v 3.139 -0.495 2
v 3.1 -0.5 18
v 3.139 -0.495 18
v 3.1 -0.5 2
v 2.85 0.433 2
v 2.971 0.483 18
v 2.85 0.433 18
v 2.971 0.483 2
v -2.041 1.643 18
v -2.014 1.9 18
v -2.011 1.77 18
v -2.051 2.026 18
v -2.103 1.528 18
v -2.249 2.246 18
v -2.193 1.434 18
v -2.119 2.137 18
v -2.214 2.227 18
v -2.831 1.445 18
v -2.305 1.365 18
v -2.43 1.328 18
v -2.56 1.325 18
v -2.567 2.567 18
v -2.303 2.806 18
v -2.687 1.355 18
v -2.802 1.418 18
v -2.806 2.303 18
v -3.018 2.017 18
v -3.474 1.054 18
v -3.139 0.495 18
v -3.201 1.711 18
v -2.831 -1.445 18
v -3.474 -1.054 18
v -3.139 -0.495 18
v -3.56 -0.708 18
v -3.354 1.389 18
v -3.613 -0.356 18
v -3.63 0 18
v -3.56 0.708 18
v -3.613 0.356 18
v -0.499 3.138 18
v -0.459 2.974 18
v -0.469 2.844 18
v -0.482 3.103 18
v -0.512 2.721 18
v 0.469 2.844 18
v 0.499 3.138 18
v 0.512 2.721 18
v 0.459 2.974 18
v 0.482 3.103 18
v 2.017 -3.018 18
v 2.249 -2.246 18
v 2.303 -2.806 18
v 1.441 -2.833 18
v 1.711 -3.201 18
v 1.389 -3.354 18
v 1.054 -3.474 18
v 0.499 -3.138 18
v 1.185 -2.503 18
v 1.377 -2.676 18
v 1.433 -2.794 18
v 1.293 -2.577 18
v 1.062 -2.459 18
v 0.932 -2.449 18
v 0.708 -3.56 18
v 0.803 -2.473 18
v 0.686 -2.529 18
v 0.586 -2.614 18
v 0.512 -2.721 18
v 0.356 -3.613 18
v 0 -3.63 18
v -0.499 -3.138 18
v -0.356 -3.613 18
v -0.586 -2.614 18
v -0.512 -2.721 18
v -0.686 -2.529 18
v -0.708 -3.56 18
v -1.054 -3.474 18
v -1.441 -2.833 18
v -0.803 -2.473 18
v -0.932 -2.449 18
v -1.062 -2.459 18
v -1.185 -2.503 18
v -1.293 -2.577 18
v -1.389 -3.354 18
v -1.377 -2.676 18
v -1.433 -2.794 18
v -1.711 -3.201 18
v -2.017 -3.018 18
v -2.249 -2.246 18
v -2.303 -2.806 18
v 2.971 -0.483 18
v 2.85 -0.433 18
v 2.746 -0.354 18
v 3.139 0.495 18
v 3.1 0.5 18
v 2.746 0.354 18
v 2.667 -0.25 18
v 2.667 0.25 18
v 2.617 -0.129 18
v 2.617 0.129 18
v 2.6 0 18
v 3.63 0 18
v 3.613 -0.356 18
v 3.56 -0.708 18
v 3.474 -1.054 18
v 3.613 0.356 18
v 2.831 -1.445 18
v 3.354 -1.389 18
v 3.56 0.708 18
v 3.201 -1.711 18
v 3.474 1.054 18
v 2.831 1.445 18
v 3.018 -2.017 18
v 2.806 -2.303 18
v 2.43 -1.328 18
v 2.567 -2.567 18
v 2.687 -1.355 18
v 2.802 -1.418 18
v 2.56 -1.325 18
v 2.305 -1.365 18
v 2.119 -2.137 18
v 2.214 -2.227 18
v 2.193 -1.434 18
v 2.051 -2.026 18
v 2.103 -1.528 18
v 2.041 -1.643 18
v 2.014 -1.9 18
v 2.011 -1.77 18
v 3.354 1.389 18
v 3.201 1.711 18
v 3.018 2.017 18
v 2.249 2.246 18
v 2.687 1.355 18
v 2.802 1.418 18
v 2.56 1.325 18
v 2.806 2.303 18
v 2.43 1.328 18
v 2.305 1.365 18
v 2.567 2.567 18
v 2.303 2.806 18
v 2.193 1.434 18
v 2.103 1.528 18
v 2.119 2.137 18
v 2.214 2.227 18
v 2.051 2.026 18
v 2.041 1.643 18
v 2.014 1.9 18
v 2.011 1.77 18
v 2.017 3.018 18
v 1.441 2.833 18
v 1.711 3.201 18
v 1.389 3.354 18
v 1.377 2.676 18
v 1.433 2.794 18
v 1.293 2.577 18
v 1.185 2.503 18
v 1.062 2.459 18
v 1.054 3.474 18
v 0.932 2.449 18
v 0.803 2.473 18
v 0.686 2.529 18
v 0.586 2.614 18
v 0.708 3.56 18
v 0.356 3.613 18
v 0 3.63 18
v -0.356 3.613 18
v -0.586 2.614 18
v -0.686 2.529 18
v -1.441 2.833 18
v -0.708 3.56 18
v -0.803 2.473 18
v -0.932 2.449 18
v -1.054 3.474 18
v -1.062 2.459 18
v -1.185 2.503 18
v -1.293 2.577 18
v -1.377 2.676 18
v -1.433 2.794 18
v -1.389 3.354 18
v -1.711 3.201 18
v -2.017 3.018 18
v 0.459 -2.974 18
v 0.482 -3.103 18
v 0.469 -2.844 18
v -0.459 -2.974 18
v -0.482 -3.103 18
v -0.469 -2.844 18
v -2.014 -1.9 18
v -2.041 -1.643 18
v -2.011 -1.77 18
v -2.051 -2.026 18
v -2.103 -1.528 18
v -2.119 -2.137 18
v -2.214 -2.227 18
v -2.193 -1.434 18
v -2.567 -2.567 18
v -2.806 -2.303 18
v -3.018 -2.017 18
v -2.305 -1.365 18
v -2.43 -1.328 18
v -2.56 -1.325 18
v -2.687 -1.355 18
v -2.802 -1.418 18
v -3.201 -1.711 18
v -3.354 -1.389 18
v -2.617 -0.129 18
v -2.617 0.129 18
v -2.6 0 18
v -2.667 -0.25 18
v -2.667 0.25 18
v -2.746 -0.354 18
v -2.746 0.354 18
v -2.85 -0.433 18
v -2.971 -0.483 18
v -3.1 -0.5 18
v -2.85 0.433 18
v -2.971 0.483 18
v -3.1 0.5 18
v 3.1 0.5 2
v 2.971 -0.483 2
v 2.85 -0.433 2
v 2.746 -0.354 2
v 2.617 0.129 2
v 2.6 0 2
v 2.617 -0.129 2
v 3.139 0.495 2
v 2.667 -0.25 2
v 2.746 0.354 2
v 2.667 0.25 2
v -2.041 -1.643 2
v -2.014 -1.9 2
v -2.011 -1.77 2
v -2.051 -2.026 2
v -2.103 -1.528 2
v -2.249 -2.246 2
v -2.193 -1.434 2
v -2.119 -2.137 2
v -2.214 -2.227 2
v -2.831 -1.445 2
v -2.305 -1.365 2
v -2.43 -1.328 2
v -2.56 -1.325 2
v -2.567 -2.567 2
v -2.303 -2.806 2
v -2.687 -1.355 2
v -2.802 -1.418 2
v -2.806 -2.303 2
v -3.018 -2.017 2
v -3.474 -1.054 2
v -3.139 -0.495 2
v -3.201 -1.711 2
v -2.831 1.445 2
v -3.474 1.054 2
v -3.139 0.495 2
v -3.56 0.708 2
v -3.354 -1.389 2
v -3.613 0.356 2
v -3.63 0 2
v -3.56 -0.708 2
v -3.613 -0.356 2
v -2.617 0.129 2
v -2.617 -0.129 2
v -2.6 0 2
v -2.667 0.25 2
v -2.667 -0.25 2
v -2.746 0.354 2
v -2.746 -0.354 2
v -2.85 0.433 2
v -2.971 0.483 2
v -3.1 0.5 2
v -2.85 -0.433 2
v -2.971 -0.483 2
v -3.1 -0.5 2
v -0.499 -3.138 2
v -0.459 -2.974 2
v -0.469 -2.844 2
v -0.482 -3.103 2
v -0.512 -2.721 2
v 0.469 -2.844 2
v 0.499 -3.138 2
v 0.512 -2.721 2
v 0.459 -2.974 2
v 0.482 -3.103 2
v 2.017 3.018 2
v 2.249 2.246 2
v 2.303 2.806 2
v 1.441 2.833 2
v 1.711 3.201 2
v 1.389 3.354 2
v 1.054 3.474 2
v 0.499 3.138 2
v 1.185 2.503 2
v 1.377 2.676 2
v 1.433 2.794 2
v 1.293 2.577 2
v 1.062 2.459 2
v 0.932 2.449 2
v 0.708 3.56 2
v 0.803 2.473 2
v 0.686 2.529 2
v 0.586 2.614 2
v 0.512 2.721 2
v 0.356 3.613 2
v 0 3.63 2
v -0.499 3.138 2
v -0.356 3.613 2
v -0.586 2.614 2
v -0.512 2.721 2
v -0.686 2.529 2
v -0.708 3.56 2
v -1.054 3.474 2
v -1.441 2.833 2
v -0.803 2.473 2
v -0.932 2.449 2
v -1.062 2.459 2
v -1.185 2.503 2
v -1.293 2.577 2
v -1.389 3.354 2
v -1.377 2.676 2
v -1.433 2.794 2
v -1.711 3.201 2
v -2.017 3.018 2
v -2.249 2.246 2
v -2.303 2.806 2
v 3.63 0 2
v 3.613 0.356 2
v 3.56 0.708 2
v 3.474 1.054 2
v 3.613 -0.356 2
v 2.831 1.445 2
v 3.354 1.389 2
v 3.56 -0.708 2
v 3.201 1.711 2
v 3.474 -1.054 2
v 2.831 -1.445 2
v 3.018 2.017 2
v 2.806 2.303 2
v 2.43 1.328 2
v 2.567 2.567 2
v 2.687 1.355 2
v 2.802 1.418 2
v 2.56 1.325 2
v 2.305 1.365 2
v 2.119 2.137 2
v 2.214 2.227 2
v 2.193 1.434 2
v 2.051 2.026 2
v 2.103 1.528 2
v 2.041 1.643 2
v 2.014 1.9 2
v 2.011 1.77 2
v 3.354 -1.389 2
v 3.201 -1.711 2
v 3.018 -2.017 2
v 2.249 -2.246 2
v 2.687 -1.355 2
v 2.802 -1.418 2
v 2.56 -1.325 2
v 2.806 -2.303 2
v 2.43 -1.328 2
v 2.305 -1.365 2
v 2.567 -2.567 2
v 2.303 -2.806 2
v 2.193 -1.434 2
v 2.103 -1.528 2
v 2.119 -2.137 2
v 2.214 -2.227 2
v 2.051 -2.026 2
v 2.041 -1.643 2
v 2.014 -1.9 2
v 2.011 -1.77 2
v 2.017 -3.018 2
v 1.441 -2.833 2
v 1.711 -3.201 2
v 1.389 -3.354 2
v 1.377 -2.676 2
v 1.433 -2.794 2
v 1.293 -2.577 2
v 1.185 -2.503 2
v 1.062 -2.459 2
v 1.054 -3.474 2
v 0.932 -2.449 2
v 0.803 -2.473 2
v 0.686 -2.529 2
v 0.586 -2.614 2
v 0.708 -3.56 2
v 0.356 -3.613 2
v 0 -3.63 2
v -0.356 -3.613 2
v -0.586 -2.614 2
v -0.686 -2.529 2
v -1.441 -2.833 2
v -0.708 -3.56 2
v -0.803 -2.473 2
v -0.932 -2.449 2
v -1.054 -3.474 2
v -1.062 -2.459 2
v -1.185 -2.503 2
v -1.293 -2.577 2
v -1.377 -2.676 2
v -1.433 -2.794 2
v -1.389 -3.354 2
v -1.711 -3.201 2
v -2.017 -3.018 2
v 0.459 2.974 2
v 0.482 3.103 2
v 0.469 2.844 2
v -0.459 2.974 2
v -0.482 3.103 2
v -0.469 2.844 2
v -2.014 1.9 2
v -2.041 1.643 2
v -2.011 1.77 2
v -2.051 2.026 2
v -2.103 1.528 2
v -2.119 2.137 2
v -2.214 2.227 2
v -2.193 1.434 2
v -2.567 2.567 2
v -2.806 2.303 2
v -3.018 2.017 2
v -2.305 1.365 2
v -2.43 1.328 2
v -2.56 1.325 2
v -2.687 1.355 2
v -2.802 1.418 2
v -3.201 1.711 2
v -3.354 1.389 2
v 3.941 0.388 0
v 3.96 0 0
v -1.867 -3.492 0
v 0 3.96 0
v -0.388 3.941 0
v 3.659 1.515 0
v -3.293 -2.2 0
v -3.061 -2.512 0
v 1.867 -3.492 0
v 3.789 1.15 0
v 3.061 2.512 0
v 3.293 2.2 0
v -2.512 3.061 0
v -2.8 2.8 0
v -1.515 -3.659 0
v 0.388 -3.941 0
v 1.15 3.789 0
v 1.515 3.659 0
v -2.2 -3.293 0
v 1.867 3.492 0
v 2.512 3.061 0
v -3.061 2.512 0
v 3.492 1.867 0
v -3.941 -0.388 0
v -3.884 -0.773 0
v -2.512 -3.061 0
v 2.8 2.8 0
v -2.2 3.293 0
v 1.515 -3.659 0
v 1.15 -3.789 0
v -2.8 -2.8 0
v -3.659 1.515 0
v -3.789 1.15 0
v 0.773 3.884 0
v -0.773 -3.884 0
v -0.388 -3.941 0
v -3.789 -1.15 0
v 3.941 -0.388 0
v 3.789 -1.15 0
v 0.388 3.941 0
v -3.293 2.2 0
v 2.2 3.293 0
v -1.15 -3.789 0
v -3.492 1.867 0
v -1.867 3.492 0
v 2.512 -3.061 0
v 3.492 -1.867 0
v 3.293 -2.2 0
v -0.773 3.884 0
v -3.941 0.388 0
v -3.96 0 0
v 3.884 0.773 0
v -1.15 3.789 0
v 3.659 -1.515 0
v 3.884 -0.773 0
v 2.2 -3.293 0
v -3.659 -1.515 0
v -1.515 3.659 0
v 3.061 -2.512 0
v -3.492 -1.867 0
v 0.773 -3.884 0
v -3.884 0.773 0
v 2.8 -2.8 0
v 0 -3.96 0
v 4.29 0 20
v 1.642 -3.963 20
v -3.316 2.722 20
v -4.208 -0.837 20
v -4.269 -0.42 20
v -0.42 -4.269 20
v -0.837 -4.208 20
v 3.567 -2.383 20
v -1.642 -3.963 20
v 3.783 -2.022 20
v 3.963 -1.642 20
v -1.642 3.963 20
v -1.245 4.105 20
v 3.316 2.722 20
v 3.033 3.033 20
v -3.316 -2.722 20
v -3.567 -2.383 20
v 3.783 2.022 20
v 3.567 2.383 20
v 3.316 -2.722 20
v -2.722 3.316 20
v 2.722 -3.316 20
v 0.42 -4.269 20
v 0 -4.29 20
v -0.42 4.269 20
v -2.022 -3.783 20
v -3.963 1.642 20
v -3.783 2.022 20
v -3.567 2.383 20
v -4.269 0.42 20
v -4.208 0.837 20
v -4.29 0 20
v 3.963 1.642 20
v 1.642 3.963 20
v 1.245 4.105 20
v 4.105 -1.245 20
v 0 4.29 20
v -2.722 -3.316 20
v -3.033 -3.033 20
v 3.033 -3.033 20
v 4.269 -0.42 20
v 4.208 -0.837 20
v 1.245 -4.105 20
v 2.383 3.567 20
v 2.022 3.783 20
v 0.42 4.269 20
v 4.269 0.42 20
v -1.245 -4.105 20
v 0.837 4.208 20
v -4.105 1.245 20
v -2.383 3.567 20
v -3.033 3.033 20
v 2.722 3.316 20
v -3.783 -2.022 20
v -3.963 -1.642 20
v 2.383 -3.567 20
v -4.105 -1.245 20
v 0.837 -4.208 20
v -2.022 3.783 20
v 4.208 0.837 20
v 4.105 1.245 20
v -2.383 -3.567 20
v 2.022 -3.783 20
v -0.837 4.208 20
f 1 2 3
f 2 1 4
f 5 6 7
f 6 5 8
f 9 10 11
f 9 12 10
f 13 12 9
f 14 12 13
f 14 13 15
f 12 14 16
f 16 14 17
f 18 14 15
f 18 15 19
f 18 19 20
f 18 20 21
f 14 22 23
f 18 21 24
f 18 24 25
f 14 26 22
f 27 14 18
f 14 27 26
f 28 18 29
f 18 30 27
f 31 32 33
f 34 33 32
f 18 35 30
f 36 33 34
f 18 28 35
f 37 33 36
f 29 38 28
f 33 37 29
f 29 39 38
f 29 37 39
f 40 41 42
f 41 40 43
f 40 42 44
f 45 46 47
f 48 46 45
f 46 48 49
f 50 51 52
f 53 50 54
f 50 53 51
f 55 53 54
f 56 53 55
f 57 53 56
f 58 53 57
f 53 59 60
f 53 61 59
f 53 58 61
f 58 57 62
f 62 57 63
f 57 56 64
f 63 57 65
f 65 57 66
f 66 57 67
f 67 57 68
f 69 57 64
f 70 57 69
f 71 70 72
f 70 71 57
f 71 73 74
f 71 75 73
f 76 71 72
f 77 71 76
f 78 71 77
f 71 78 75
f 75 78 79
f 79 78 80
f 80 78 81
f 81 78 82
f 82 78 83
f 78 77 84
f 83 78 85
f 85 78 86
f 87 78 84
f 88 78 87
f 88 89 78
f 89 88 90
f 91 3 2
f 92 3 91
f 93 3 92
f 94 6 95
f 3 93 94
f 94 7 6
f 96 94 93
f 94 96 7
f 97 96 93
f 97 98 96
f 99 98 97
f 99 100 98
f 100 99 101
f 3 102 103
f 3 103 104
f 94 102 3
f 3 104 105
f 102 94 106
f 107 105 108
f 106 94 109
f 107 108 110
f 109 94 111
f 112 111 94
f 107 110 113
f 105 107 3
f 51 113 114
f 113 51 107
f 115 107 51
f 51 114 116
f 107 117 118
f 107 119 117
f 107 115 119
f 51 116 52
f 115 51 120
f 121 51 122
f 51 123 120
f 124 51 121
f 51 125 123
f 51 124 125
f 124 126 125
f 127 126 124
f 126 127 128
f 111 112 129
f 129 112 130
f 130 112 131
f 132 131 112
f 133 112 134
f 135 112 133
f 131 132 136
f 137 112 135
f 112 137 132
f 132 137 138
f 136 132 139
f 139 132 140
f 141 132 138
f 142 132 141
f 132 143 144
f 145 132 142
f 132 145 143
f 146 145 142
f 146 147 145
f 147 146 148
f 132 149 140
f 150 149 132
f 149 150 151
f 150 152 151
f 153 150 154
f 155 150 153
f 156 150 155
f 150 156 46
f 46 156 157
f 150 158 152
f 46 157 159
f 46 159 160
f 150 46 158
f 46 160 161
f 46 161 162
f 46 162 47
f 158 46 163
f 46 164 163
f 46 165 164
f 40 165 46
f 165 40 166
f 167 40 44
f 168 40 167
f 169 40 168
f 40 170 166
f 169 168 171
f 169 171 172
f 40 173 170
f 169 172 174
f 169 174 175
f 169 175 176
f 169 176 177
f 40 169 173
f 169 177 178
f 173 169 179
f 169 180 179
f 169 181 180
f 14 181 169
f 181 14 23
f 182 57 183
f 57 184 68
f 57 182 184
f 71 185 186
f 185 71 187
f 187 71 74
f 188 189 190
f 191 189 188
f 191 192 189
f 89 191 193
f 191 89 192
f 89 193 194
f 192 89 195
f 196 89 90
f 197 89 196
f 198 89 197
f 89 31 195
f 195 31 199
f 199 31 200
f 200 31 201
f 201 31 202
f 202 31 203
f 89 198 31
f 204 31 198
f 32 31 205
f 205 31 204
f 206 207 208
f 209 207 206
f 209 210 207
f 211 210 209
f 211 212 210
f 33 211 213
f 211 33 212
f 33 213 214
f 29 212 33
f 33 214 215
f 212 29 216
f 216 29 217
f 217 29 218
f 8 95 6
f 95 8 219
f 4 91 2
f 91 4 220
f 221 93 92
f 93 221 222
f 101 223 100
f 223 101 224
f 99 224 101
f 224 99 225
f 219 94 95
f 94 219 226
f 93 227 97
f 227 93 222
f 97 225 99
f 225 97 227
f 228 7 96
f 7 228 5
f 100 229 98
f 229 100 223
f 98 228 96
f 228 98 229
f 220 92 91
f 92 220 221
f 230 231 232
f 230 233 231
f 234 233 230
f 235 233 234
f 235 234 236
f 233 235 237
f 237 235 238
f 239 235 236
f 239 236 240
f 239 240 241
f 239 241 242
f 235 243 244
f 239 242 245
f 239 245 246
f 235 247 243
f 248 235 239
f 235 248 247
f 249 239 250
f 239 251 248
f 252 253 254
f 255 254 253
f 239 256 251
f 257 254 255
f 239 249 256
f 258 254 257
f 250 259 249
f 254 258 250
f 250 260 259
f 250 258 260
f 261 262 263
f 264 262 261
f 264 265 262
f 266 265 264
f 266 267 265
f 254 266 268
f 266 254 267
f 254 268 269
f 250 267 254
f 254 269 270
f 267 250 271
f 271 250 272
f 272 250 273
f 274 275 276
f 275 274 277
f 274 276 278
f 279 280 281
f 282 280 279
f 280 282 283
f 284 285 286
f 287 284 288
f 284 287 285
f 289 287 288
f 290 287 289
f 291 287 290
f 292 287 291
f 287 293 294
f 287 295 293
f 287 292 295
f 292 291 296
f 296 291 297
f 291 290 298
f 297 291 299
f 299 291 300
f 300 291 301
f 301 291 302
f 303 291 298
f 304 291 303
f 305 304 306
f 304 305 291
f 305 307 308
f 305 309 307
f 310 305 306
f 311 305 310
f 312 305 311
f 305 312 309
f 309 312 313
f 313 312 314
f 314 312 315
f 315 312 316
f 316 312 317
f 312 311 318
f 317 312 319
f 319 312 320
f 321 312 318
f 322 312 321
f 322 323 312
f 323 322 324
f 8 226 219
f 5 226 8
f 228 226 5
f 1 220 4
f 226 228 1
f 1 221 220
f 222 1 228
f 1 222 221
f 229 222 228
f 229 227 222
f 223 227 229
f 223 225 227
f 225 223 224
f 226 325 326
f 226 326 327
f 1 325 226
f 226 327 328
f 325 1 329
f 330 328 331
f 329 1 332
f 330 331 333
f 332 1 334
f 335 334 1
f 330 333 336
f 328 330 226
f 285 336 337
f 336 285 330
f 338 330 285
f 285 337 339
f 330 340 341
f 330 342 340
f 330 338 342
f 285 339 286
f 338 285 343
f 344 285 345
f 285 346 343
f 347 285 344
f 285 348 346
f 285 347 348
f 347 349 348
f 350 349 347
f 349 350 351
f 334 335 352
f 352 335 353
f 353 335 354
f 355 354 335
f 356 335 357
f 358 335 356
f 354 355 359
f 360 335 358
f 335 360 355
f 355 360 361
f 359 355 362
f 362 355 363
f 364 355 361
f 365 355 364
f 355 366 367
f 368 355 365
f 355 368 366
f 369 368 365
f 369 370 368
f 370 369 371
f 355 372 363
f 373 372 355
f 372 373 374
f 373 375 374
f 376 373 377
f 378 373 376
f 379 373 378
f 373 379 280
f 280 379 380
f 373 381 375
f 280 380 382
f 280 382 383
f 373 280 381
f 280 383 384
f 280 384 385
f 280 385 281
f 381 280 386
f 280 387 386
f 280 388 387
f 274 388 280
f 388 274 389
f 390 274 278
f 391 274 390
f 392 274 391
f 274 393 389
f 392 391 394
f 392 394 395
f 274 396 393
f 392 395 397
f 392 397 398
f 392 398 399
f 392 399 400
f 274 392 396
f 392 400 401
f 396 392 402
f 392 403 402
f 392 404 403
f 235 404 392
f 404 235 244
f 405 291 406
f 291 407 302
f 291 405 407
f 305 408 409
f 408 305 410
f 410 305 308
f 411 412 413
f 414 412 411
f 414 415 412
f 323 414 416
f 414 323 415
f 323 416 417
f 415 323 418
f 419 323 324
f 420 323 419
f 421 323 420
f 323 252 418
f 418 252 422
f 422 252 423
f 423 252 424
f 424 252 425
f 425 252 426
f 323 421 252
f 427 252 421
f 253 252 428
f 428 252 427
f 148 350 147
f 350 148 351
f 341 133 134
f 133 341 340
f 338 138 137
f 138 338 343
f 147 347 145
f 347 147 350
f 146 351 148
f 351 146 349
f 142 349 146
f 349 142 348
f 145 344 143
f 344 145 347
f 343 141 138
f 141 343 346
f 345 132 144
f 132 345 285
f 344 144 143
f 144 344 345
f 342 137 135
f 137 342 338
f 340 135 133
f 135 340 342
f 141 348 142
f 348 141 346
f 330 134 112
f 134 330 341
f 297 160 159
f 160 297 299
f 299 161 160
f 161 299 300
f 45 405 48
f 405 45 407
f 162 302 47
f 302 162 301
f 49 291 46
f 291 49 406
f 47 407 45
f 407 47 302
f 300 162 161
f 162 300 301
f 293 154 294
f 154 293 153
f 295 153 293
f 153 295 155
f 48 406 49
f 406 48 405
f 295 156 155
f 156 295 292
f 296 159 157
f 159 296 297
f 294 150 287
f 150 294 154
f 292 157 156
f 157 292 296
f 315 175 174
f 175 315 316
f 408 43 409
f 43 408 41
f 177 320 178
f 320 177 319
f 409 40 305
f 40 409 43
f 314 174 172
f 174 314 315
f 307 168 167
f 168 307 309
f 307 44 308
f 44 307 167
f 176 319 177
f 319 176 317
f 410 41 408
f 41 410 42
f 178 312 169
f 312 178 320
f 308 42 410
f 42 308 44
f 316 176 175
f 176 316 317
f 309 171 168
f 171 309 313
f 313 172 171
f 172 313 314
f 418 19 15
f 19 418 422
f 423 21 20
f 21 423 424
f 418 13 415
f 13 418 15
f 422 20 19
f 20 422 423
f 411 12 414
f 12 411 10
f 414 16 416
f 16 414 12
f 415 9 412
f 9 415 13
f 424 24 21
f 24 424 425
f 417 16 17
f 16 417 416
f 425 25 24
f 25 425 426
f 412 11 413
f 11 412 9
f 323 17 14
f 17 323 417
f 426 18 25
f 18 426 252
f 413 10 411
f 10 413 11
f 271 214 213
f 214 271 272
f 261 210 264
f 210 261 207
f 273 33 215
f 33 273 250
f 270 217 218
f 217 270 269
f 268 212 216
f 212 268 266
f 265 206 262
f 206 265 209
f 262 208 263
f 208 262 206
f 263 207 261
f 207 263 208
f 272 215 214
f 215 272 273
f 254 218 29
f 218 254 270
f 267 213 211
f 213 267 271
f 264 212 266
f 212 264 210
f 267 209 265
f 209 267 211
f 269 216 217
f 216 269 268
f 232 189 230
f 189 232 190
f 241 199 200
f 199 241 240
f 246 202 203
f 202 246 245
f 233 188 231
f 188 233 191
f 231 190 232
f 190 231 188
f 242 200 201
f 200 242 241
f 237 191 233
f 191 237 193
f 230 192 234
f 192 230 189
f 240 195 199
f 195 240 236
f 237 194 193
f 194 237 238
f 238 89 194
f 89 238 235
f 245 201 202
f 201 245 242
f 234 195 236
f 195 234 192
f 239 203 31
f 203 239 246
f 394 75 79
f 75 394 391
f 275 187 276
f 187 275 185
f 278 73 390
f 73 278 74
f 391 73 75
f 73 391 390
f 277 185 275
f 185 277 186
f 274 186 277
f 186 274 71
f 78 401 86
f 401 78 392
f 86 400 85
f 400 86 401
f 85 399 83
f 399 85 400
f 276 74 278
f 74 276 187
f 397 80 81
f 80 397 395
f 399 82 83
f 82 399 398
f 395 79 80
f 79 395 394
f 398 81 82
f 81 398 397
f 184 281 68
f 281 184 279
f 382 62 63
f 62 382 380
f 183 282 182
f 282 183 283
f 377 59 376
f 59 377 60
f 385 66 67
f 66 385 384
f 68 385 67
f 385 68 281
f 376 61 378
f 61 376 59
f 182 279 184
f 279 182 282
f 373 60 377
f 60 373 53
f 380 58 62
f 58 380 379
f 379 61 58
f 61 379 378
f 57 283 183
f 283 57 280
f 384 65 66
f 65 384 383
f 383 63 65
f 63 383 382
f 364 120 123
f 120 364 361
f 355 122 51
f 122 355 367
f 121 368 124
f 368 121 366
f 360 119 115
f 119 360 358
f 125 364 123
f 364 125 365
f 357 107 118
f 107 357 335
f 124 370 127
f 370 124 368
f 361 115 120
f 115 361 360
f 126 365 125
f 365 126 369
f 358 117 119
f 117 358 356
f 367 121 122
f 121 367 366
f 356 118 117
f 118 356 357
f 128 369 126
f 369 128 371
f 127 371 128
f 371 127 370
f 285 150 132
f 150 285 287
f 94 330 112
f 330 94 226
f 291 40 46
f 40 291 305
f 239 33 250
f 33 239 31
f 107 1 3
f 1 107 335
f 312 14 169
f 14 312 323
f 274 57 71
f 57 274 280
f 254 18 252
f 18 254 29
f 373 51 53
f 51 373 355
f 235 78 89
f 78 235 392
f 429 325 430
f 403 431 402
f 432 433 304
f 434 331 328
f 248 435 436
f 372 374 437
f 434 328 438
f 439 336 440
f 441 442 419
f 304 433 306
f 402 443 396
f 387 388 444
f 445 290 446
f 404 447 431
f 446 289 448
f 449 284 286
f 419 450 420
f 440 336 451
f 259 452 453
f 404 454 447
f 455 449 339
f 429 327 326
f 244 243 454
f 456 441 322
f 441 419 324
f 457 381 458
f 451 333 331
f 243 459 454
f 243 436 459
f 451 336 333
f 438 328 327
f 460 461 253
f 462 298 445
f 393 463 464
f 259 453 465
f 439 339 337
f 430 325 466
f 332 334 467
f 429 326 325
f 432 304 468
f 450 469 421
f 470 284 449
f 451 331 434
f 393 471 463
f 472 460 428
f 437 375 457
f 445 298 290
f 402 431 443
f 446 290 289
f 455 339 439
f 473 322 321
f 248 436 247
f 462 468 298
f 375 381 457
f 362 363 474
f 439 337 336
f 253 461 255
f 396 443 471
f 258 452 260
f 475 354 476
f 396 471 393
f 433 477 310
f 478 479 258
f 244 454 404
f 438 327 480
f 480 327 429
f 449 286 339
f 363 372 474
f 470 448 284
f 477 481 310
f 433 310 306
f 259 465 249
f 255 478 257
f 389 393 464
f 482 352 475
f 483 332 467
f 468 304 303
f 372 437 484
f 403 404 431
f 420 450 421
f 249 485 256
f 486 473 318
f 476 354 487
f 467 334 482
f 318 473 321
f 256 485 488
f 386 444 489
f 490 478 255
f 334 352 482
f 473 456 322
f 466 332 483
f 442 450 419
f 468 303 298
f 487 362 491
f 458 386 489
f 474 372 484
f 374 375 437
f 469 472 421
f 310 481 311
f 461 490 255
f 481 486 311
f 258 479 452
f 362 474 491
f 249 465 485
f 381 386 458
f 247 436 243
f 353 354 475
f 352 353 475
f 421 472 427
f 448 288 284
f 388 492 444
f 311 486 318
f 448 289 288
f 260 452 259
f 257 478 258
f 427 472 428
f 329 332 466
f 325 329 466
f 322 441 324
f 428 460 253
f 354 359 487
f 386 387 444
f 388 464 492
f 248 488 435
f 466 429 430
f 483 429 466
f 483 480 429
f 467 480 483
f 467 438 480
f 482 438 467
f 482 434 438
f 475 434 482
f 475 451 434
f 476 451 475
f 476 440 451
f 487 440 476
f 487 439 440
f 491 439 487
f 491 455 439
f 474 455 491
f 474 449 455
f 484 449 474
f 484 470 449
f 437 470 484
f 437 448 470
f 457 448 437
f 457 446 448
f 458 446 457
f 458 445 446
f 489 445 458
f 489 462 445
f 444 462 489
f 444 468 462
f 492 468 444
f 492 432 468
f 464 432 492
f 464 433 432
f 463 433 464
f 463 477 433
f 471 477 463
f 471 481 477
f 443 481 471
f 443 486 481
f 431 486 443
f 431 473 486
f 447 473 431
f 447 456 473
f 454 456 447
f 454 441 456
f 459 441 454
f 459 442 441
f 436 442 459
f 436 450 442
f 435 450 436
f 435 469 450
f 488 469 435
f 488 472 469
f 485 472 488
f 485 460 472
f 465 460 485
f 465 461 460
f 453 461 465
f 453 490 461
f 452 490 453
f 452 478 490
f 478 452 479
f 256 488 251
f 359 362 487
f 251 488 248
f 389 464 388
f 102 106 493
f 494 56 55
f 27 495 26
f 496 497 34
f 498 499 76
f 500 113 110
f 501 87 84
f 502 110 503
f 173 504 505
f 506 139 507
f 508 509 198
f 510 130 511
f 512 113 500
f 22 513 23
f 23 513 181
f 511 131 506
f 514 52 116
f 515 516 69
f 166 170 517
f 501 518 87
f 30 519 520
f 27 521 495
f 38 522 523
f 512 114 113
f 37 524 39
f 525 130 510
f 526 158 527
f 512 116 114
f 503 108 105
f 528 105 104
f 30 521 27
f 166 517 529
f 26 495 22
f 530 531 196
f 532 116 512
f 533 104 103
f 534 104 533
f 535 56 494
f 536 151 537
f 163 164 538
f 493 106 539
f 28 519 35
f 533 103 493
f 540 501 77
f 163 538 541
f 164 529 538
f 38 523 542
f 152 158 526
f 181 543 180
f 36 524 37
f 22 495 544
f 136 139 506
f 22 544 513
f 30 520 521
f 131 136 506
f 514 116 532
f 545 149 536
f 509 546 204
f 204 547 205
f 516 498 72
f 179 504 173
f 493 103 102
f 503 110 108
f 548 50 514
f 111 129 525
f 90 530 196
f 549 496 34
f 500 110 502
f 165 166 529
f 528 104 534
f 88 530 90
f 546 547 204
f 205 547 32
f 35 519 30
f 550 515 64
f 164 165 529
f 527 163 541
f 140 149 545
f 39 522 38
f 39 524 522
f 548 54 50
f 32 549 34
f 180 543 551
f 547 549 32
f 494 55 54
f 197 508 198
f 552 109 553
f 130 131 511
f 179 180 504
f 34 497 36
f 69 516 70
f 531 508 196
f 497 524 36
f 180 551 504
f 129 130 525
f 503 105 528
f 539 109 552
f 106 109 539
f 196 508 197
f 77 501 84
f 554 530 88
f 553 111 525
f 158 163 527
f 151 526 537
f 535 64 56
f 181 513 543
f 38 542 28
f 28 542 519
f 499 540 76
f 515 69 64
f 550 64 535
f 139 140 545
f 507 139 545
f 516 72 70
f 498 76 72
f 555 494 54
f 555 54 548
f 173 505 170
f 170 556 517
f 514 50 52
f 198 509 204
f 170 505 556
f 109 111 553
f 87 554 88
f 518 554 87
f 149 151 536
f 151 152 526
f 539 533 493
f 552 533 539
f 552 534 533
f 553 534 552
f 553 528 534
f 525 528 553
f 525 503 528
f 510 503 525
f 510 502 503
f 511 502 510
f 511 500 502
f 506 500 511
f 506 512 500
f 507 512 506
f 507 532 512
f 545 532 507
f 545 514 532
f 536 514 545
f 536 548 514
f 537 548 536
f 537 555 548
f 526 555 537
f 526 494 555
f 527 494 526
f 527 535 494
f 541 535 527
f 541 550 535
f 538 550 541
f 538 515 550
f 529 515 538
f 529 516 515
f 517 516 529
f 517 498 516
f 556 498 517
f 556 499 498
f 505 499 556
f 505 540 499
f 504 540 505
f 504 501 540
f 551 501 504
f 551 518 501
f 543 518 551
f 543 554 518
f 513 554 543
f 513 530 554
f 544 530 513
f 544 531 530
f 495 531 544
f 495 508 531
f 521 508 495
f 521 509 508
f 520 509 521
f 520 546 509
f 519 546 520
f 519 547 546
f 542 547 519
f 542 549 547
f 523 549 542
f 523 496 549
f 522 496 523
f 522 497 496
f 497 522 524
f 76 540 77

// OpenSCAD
// file: CommonModules.scad
//    $$$$$$\   $$$$$$\   $$$$$$\  $$\   $$\ $$$$$$\ $$$$$$$\  $$$$$$$$\ 
//    $$  __$$\ $$  __$$\ $$  __$$\ $$ |  $$ |\_$$  _|$$  __$$\ $$  _____|
//    $$ /  $$ |$$ /  \__|$$ /  $$ |$$ |  $$ |  $$ |  $$ |  $$ |$$ |      
//    $$$$$$$$ |$$ |      $$ |  $$ |$$ |  $$ |  $$ |  $$$$$$$  |$$$$$\    
//    $$  __$$ |$$ |      $$ |  $$ |$$ |  $$ |  $$ |  $$  __$$< $$  __|   
//    $$ |  $$ |$$ |  $$\ $$ $$\$$ |$$ |  $$ |  $$ |  $$ |  $$ |$$ |      
//    $$ |  $$ |\$$$$$$  |\$$$$$$ / \$$$$$$  |$$$$$$\ $$ |  $$ |$$$$$$$$\ 
//    \__|  \__| \______/  \___$$$\  \______/ \______|\__|  \__|\________|
//                            \___|                                      
//      
//       Print and play - OpenScad project - by Bekkalizer - GPLv3
// 
// This file is part of the Acquire stl project.
// Copyright (C) 2025 Bekkalizer
//
// Acquire stl project is free software: you can redistribute it and/or modify
// it under the terms of the GNU General Public License as published
// by the Free Software Foundation, either version 3 of the License,
// or (at your option) any later version.
//
// Acquire stl project is distributed in the hope that it will be useful,
// but WITHOUT ANY WARRANTY; without even the implied warranty of
// MERCHANTABILITY or FITNESS FOR A PARTICULAR PURPOSE. See the
// GNU General Public License for more details.
//
// You should have received a copy of the GNU General Public License
// along with this program. If not, see <https://www.gnu.org/licenses/>.

module cube_with_extruded_bottom( cube_size = [19.5, 19.5, 5] ) {
    //Main build script parameters:
    max_width = 19.2;
    top_lip = 2;
    top_height = 3;
    //Calculated hole size:
    inside_margins = 1;
    hole_width = max_width - 2 * (top_lip) + inside_margins;
    hole_height = top_height + inside_margins;
    
    hole_size = [hole_width, hole_width, hole_height]; // Hole dimensions (same height as cube)
    hole_offset = [(cube_size[0] - hole_size[0]) / 2, (cube_size[1] - hole_size[1]) / 2, -0.1]; // Centered on bottom
    difference() {
        // Main Cube
        cube(cube_size);
        
        // Hole Cube (subtracting from bottom)
        translate(hole_offset)
            cube(hole_size);
    }
}
// main file
//    $$$$$$\   $$$$$$\   $$$$$$\  $$\   $$\ $$$$$$\ $$$$$$$\  $$$$$$$$\ 
//    $$  __$$\ $$  __$$\ $$  __$$\ $$ |  $$ |\_$$  _|$$  __$$\ $$  _____|
//    $$ /  $$ |$$ /  \__|$$ /  $$ |$$ |  $$ |  $$ |  $$ |  $$ |$$ |      
//    $$$$$$$$ |$$ |      $$ |  $$ |$$ |  $$ |  $$ |  $$$$$$$  |$$$$$\    
//    $$  __$$ |$$ |      $$ |  $$ |$$ |  $$ |  $$ |  $$  __$$< $$  __|   
//    $$ |  $$ |$$ |  $$\ $$ $$\$$ |$$ |  $$ |  $$ |  $$ |  $$ |$$ |      
//    $$ |  $$ |\$$$$$$  |\$$$$$$ / \$$$$$$  |$$$$$$\ $$ |  $$ |$$$$$$$$\ 
//    \__|  \__| \______/  \___$$$\  \______/ \______|\__|  \__|\________|
//                            \___|                                      
//      
//       Print and play - OpenScad project - by Bekkalizer - GPLv3
// 
// This file is part of the Acquire stl project.
// Copyright (C) 2025 Bekkalizer
//
// Acquire stl project is free software: you can redistribute it and/or modify
// it under the terms of the GNU General Public License as published
// by the Free Software Foundation, either version 3 of the License,
// or (at your option) any later version.
//
// Acquire stl project is distributed in the hope that it will be useful,
// but WITHOUT ANY WARRANTY; without even the implied warranty of
// MERCHANTABILITY or FITNESS FOR A PARTICULAR PURPOSE. See the
// GNU General Public License for more details.
//
// You should have received a copy of the GNU General Public License
// along with this program. If not, see <https://www.gnu.org/licenses/>.

use <CommonModules.scad>

// ============== Parameters ==============
column_height = 20;
column_radius = 3.3;
column_flutes = 10;
column_margin = 1.5 + column_radius;

roman_column(column_height, column_radius, column_flutes);

module roman_column(height = 100, radius = 10, flutes = 12) {
    base_height = height * 0.1;
    shaft_height = height * 0.8;
    capital_height = height * 0.1;

    // Base
    cylinder(h = base_height, r1 = radius * 1.2, r2 = radius * 1.1, $fn=64);

    // Shaft (with flutes)
    translate([0,0,base_height])
        fluted_shaft(h = shaft_height, r = radius, flutes = flutes);

    // Capital
    translate([0,0,base_height + shaft_height])
        cylinder(h = capital_height, r1 = radius * 1.1, r2 = radius * 1.3, $fn=64);
}

module fluted_shaft(h, r, flutes) {
    difference() {
        // Main shaft
        cylinder(h = h, r = r, $fn = flutes);

        // Carve flutes (inward slightly)
        for (i = [0 : flutes - 1]) {
            angle = 360 * i / flutes;
            rotate([0, 0, angle])
                translate([r - 0.2, 0, 0])  // push in slightly to intersect shaft
                    cylinder(h = h, r = 0.5, $fn = 24);
        }
    }
}
